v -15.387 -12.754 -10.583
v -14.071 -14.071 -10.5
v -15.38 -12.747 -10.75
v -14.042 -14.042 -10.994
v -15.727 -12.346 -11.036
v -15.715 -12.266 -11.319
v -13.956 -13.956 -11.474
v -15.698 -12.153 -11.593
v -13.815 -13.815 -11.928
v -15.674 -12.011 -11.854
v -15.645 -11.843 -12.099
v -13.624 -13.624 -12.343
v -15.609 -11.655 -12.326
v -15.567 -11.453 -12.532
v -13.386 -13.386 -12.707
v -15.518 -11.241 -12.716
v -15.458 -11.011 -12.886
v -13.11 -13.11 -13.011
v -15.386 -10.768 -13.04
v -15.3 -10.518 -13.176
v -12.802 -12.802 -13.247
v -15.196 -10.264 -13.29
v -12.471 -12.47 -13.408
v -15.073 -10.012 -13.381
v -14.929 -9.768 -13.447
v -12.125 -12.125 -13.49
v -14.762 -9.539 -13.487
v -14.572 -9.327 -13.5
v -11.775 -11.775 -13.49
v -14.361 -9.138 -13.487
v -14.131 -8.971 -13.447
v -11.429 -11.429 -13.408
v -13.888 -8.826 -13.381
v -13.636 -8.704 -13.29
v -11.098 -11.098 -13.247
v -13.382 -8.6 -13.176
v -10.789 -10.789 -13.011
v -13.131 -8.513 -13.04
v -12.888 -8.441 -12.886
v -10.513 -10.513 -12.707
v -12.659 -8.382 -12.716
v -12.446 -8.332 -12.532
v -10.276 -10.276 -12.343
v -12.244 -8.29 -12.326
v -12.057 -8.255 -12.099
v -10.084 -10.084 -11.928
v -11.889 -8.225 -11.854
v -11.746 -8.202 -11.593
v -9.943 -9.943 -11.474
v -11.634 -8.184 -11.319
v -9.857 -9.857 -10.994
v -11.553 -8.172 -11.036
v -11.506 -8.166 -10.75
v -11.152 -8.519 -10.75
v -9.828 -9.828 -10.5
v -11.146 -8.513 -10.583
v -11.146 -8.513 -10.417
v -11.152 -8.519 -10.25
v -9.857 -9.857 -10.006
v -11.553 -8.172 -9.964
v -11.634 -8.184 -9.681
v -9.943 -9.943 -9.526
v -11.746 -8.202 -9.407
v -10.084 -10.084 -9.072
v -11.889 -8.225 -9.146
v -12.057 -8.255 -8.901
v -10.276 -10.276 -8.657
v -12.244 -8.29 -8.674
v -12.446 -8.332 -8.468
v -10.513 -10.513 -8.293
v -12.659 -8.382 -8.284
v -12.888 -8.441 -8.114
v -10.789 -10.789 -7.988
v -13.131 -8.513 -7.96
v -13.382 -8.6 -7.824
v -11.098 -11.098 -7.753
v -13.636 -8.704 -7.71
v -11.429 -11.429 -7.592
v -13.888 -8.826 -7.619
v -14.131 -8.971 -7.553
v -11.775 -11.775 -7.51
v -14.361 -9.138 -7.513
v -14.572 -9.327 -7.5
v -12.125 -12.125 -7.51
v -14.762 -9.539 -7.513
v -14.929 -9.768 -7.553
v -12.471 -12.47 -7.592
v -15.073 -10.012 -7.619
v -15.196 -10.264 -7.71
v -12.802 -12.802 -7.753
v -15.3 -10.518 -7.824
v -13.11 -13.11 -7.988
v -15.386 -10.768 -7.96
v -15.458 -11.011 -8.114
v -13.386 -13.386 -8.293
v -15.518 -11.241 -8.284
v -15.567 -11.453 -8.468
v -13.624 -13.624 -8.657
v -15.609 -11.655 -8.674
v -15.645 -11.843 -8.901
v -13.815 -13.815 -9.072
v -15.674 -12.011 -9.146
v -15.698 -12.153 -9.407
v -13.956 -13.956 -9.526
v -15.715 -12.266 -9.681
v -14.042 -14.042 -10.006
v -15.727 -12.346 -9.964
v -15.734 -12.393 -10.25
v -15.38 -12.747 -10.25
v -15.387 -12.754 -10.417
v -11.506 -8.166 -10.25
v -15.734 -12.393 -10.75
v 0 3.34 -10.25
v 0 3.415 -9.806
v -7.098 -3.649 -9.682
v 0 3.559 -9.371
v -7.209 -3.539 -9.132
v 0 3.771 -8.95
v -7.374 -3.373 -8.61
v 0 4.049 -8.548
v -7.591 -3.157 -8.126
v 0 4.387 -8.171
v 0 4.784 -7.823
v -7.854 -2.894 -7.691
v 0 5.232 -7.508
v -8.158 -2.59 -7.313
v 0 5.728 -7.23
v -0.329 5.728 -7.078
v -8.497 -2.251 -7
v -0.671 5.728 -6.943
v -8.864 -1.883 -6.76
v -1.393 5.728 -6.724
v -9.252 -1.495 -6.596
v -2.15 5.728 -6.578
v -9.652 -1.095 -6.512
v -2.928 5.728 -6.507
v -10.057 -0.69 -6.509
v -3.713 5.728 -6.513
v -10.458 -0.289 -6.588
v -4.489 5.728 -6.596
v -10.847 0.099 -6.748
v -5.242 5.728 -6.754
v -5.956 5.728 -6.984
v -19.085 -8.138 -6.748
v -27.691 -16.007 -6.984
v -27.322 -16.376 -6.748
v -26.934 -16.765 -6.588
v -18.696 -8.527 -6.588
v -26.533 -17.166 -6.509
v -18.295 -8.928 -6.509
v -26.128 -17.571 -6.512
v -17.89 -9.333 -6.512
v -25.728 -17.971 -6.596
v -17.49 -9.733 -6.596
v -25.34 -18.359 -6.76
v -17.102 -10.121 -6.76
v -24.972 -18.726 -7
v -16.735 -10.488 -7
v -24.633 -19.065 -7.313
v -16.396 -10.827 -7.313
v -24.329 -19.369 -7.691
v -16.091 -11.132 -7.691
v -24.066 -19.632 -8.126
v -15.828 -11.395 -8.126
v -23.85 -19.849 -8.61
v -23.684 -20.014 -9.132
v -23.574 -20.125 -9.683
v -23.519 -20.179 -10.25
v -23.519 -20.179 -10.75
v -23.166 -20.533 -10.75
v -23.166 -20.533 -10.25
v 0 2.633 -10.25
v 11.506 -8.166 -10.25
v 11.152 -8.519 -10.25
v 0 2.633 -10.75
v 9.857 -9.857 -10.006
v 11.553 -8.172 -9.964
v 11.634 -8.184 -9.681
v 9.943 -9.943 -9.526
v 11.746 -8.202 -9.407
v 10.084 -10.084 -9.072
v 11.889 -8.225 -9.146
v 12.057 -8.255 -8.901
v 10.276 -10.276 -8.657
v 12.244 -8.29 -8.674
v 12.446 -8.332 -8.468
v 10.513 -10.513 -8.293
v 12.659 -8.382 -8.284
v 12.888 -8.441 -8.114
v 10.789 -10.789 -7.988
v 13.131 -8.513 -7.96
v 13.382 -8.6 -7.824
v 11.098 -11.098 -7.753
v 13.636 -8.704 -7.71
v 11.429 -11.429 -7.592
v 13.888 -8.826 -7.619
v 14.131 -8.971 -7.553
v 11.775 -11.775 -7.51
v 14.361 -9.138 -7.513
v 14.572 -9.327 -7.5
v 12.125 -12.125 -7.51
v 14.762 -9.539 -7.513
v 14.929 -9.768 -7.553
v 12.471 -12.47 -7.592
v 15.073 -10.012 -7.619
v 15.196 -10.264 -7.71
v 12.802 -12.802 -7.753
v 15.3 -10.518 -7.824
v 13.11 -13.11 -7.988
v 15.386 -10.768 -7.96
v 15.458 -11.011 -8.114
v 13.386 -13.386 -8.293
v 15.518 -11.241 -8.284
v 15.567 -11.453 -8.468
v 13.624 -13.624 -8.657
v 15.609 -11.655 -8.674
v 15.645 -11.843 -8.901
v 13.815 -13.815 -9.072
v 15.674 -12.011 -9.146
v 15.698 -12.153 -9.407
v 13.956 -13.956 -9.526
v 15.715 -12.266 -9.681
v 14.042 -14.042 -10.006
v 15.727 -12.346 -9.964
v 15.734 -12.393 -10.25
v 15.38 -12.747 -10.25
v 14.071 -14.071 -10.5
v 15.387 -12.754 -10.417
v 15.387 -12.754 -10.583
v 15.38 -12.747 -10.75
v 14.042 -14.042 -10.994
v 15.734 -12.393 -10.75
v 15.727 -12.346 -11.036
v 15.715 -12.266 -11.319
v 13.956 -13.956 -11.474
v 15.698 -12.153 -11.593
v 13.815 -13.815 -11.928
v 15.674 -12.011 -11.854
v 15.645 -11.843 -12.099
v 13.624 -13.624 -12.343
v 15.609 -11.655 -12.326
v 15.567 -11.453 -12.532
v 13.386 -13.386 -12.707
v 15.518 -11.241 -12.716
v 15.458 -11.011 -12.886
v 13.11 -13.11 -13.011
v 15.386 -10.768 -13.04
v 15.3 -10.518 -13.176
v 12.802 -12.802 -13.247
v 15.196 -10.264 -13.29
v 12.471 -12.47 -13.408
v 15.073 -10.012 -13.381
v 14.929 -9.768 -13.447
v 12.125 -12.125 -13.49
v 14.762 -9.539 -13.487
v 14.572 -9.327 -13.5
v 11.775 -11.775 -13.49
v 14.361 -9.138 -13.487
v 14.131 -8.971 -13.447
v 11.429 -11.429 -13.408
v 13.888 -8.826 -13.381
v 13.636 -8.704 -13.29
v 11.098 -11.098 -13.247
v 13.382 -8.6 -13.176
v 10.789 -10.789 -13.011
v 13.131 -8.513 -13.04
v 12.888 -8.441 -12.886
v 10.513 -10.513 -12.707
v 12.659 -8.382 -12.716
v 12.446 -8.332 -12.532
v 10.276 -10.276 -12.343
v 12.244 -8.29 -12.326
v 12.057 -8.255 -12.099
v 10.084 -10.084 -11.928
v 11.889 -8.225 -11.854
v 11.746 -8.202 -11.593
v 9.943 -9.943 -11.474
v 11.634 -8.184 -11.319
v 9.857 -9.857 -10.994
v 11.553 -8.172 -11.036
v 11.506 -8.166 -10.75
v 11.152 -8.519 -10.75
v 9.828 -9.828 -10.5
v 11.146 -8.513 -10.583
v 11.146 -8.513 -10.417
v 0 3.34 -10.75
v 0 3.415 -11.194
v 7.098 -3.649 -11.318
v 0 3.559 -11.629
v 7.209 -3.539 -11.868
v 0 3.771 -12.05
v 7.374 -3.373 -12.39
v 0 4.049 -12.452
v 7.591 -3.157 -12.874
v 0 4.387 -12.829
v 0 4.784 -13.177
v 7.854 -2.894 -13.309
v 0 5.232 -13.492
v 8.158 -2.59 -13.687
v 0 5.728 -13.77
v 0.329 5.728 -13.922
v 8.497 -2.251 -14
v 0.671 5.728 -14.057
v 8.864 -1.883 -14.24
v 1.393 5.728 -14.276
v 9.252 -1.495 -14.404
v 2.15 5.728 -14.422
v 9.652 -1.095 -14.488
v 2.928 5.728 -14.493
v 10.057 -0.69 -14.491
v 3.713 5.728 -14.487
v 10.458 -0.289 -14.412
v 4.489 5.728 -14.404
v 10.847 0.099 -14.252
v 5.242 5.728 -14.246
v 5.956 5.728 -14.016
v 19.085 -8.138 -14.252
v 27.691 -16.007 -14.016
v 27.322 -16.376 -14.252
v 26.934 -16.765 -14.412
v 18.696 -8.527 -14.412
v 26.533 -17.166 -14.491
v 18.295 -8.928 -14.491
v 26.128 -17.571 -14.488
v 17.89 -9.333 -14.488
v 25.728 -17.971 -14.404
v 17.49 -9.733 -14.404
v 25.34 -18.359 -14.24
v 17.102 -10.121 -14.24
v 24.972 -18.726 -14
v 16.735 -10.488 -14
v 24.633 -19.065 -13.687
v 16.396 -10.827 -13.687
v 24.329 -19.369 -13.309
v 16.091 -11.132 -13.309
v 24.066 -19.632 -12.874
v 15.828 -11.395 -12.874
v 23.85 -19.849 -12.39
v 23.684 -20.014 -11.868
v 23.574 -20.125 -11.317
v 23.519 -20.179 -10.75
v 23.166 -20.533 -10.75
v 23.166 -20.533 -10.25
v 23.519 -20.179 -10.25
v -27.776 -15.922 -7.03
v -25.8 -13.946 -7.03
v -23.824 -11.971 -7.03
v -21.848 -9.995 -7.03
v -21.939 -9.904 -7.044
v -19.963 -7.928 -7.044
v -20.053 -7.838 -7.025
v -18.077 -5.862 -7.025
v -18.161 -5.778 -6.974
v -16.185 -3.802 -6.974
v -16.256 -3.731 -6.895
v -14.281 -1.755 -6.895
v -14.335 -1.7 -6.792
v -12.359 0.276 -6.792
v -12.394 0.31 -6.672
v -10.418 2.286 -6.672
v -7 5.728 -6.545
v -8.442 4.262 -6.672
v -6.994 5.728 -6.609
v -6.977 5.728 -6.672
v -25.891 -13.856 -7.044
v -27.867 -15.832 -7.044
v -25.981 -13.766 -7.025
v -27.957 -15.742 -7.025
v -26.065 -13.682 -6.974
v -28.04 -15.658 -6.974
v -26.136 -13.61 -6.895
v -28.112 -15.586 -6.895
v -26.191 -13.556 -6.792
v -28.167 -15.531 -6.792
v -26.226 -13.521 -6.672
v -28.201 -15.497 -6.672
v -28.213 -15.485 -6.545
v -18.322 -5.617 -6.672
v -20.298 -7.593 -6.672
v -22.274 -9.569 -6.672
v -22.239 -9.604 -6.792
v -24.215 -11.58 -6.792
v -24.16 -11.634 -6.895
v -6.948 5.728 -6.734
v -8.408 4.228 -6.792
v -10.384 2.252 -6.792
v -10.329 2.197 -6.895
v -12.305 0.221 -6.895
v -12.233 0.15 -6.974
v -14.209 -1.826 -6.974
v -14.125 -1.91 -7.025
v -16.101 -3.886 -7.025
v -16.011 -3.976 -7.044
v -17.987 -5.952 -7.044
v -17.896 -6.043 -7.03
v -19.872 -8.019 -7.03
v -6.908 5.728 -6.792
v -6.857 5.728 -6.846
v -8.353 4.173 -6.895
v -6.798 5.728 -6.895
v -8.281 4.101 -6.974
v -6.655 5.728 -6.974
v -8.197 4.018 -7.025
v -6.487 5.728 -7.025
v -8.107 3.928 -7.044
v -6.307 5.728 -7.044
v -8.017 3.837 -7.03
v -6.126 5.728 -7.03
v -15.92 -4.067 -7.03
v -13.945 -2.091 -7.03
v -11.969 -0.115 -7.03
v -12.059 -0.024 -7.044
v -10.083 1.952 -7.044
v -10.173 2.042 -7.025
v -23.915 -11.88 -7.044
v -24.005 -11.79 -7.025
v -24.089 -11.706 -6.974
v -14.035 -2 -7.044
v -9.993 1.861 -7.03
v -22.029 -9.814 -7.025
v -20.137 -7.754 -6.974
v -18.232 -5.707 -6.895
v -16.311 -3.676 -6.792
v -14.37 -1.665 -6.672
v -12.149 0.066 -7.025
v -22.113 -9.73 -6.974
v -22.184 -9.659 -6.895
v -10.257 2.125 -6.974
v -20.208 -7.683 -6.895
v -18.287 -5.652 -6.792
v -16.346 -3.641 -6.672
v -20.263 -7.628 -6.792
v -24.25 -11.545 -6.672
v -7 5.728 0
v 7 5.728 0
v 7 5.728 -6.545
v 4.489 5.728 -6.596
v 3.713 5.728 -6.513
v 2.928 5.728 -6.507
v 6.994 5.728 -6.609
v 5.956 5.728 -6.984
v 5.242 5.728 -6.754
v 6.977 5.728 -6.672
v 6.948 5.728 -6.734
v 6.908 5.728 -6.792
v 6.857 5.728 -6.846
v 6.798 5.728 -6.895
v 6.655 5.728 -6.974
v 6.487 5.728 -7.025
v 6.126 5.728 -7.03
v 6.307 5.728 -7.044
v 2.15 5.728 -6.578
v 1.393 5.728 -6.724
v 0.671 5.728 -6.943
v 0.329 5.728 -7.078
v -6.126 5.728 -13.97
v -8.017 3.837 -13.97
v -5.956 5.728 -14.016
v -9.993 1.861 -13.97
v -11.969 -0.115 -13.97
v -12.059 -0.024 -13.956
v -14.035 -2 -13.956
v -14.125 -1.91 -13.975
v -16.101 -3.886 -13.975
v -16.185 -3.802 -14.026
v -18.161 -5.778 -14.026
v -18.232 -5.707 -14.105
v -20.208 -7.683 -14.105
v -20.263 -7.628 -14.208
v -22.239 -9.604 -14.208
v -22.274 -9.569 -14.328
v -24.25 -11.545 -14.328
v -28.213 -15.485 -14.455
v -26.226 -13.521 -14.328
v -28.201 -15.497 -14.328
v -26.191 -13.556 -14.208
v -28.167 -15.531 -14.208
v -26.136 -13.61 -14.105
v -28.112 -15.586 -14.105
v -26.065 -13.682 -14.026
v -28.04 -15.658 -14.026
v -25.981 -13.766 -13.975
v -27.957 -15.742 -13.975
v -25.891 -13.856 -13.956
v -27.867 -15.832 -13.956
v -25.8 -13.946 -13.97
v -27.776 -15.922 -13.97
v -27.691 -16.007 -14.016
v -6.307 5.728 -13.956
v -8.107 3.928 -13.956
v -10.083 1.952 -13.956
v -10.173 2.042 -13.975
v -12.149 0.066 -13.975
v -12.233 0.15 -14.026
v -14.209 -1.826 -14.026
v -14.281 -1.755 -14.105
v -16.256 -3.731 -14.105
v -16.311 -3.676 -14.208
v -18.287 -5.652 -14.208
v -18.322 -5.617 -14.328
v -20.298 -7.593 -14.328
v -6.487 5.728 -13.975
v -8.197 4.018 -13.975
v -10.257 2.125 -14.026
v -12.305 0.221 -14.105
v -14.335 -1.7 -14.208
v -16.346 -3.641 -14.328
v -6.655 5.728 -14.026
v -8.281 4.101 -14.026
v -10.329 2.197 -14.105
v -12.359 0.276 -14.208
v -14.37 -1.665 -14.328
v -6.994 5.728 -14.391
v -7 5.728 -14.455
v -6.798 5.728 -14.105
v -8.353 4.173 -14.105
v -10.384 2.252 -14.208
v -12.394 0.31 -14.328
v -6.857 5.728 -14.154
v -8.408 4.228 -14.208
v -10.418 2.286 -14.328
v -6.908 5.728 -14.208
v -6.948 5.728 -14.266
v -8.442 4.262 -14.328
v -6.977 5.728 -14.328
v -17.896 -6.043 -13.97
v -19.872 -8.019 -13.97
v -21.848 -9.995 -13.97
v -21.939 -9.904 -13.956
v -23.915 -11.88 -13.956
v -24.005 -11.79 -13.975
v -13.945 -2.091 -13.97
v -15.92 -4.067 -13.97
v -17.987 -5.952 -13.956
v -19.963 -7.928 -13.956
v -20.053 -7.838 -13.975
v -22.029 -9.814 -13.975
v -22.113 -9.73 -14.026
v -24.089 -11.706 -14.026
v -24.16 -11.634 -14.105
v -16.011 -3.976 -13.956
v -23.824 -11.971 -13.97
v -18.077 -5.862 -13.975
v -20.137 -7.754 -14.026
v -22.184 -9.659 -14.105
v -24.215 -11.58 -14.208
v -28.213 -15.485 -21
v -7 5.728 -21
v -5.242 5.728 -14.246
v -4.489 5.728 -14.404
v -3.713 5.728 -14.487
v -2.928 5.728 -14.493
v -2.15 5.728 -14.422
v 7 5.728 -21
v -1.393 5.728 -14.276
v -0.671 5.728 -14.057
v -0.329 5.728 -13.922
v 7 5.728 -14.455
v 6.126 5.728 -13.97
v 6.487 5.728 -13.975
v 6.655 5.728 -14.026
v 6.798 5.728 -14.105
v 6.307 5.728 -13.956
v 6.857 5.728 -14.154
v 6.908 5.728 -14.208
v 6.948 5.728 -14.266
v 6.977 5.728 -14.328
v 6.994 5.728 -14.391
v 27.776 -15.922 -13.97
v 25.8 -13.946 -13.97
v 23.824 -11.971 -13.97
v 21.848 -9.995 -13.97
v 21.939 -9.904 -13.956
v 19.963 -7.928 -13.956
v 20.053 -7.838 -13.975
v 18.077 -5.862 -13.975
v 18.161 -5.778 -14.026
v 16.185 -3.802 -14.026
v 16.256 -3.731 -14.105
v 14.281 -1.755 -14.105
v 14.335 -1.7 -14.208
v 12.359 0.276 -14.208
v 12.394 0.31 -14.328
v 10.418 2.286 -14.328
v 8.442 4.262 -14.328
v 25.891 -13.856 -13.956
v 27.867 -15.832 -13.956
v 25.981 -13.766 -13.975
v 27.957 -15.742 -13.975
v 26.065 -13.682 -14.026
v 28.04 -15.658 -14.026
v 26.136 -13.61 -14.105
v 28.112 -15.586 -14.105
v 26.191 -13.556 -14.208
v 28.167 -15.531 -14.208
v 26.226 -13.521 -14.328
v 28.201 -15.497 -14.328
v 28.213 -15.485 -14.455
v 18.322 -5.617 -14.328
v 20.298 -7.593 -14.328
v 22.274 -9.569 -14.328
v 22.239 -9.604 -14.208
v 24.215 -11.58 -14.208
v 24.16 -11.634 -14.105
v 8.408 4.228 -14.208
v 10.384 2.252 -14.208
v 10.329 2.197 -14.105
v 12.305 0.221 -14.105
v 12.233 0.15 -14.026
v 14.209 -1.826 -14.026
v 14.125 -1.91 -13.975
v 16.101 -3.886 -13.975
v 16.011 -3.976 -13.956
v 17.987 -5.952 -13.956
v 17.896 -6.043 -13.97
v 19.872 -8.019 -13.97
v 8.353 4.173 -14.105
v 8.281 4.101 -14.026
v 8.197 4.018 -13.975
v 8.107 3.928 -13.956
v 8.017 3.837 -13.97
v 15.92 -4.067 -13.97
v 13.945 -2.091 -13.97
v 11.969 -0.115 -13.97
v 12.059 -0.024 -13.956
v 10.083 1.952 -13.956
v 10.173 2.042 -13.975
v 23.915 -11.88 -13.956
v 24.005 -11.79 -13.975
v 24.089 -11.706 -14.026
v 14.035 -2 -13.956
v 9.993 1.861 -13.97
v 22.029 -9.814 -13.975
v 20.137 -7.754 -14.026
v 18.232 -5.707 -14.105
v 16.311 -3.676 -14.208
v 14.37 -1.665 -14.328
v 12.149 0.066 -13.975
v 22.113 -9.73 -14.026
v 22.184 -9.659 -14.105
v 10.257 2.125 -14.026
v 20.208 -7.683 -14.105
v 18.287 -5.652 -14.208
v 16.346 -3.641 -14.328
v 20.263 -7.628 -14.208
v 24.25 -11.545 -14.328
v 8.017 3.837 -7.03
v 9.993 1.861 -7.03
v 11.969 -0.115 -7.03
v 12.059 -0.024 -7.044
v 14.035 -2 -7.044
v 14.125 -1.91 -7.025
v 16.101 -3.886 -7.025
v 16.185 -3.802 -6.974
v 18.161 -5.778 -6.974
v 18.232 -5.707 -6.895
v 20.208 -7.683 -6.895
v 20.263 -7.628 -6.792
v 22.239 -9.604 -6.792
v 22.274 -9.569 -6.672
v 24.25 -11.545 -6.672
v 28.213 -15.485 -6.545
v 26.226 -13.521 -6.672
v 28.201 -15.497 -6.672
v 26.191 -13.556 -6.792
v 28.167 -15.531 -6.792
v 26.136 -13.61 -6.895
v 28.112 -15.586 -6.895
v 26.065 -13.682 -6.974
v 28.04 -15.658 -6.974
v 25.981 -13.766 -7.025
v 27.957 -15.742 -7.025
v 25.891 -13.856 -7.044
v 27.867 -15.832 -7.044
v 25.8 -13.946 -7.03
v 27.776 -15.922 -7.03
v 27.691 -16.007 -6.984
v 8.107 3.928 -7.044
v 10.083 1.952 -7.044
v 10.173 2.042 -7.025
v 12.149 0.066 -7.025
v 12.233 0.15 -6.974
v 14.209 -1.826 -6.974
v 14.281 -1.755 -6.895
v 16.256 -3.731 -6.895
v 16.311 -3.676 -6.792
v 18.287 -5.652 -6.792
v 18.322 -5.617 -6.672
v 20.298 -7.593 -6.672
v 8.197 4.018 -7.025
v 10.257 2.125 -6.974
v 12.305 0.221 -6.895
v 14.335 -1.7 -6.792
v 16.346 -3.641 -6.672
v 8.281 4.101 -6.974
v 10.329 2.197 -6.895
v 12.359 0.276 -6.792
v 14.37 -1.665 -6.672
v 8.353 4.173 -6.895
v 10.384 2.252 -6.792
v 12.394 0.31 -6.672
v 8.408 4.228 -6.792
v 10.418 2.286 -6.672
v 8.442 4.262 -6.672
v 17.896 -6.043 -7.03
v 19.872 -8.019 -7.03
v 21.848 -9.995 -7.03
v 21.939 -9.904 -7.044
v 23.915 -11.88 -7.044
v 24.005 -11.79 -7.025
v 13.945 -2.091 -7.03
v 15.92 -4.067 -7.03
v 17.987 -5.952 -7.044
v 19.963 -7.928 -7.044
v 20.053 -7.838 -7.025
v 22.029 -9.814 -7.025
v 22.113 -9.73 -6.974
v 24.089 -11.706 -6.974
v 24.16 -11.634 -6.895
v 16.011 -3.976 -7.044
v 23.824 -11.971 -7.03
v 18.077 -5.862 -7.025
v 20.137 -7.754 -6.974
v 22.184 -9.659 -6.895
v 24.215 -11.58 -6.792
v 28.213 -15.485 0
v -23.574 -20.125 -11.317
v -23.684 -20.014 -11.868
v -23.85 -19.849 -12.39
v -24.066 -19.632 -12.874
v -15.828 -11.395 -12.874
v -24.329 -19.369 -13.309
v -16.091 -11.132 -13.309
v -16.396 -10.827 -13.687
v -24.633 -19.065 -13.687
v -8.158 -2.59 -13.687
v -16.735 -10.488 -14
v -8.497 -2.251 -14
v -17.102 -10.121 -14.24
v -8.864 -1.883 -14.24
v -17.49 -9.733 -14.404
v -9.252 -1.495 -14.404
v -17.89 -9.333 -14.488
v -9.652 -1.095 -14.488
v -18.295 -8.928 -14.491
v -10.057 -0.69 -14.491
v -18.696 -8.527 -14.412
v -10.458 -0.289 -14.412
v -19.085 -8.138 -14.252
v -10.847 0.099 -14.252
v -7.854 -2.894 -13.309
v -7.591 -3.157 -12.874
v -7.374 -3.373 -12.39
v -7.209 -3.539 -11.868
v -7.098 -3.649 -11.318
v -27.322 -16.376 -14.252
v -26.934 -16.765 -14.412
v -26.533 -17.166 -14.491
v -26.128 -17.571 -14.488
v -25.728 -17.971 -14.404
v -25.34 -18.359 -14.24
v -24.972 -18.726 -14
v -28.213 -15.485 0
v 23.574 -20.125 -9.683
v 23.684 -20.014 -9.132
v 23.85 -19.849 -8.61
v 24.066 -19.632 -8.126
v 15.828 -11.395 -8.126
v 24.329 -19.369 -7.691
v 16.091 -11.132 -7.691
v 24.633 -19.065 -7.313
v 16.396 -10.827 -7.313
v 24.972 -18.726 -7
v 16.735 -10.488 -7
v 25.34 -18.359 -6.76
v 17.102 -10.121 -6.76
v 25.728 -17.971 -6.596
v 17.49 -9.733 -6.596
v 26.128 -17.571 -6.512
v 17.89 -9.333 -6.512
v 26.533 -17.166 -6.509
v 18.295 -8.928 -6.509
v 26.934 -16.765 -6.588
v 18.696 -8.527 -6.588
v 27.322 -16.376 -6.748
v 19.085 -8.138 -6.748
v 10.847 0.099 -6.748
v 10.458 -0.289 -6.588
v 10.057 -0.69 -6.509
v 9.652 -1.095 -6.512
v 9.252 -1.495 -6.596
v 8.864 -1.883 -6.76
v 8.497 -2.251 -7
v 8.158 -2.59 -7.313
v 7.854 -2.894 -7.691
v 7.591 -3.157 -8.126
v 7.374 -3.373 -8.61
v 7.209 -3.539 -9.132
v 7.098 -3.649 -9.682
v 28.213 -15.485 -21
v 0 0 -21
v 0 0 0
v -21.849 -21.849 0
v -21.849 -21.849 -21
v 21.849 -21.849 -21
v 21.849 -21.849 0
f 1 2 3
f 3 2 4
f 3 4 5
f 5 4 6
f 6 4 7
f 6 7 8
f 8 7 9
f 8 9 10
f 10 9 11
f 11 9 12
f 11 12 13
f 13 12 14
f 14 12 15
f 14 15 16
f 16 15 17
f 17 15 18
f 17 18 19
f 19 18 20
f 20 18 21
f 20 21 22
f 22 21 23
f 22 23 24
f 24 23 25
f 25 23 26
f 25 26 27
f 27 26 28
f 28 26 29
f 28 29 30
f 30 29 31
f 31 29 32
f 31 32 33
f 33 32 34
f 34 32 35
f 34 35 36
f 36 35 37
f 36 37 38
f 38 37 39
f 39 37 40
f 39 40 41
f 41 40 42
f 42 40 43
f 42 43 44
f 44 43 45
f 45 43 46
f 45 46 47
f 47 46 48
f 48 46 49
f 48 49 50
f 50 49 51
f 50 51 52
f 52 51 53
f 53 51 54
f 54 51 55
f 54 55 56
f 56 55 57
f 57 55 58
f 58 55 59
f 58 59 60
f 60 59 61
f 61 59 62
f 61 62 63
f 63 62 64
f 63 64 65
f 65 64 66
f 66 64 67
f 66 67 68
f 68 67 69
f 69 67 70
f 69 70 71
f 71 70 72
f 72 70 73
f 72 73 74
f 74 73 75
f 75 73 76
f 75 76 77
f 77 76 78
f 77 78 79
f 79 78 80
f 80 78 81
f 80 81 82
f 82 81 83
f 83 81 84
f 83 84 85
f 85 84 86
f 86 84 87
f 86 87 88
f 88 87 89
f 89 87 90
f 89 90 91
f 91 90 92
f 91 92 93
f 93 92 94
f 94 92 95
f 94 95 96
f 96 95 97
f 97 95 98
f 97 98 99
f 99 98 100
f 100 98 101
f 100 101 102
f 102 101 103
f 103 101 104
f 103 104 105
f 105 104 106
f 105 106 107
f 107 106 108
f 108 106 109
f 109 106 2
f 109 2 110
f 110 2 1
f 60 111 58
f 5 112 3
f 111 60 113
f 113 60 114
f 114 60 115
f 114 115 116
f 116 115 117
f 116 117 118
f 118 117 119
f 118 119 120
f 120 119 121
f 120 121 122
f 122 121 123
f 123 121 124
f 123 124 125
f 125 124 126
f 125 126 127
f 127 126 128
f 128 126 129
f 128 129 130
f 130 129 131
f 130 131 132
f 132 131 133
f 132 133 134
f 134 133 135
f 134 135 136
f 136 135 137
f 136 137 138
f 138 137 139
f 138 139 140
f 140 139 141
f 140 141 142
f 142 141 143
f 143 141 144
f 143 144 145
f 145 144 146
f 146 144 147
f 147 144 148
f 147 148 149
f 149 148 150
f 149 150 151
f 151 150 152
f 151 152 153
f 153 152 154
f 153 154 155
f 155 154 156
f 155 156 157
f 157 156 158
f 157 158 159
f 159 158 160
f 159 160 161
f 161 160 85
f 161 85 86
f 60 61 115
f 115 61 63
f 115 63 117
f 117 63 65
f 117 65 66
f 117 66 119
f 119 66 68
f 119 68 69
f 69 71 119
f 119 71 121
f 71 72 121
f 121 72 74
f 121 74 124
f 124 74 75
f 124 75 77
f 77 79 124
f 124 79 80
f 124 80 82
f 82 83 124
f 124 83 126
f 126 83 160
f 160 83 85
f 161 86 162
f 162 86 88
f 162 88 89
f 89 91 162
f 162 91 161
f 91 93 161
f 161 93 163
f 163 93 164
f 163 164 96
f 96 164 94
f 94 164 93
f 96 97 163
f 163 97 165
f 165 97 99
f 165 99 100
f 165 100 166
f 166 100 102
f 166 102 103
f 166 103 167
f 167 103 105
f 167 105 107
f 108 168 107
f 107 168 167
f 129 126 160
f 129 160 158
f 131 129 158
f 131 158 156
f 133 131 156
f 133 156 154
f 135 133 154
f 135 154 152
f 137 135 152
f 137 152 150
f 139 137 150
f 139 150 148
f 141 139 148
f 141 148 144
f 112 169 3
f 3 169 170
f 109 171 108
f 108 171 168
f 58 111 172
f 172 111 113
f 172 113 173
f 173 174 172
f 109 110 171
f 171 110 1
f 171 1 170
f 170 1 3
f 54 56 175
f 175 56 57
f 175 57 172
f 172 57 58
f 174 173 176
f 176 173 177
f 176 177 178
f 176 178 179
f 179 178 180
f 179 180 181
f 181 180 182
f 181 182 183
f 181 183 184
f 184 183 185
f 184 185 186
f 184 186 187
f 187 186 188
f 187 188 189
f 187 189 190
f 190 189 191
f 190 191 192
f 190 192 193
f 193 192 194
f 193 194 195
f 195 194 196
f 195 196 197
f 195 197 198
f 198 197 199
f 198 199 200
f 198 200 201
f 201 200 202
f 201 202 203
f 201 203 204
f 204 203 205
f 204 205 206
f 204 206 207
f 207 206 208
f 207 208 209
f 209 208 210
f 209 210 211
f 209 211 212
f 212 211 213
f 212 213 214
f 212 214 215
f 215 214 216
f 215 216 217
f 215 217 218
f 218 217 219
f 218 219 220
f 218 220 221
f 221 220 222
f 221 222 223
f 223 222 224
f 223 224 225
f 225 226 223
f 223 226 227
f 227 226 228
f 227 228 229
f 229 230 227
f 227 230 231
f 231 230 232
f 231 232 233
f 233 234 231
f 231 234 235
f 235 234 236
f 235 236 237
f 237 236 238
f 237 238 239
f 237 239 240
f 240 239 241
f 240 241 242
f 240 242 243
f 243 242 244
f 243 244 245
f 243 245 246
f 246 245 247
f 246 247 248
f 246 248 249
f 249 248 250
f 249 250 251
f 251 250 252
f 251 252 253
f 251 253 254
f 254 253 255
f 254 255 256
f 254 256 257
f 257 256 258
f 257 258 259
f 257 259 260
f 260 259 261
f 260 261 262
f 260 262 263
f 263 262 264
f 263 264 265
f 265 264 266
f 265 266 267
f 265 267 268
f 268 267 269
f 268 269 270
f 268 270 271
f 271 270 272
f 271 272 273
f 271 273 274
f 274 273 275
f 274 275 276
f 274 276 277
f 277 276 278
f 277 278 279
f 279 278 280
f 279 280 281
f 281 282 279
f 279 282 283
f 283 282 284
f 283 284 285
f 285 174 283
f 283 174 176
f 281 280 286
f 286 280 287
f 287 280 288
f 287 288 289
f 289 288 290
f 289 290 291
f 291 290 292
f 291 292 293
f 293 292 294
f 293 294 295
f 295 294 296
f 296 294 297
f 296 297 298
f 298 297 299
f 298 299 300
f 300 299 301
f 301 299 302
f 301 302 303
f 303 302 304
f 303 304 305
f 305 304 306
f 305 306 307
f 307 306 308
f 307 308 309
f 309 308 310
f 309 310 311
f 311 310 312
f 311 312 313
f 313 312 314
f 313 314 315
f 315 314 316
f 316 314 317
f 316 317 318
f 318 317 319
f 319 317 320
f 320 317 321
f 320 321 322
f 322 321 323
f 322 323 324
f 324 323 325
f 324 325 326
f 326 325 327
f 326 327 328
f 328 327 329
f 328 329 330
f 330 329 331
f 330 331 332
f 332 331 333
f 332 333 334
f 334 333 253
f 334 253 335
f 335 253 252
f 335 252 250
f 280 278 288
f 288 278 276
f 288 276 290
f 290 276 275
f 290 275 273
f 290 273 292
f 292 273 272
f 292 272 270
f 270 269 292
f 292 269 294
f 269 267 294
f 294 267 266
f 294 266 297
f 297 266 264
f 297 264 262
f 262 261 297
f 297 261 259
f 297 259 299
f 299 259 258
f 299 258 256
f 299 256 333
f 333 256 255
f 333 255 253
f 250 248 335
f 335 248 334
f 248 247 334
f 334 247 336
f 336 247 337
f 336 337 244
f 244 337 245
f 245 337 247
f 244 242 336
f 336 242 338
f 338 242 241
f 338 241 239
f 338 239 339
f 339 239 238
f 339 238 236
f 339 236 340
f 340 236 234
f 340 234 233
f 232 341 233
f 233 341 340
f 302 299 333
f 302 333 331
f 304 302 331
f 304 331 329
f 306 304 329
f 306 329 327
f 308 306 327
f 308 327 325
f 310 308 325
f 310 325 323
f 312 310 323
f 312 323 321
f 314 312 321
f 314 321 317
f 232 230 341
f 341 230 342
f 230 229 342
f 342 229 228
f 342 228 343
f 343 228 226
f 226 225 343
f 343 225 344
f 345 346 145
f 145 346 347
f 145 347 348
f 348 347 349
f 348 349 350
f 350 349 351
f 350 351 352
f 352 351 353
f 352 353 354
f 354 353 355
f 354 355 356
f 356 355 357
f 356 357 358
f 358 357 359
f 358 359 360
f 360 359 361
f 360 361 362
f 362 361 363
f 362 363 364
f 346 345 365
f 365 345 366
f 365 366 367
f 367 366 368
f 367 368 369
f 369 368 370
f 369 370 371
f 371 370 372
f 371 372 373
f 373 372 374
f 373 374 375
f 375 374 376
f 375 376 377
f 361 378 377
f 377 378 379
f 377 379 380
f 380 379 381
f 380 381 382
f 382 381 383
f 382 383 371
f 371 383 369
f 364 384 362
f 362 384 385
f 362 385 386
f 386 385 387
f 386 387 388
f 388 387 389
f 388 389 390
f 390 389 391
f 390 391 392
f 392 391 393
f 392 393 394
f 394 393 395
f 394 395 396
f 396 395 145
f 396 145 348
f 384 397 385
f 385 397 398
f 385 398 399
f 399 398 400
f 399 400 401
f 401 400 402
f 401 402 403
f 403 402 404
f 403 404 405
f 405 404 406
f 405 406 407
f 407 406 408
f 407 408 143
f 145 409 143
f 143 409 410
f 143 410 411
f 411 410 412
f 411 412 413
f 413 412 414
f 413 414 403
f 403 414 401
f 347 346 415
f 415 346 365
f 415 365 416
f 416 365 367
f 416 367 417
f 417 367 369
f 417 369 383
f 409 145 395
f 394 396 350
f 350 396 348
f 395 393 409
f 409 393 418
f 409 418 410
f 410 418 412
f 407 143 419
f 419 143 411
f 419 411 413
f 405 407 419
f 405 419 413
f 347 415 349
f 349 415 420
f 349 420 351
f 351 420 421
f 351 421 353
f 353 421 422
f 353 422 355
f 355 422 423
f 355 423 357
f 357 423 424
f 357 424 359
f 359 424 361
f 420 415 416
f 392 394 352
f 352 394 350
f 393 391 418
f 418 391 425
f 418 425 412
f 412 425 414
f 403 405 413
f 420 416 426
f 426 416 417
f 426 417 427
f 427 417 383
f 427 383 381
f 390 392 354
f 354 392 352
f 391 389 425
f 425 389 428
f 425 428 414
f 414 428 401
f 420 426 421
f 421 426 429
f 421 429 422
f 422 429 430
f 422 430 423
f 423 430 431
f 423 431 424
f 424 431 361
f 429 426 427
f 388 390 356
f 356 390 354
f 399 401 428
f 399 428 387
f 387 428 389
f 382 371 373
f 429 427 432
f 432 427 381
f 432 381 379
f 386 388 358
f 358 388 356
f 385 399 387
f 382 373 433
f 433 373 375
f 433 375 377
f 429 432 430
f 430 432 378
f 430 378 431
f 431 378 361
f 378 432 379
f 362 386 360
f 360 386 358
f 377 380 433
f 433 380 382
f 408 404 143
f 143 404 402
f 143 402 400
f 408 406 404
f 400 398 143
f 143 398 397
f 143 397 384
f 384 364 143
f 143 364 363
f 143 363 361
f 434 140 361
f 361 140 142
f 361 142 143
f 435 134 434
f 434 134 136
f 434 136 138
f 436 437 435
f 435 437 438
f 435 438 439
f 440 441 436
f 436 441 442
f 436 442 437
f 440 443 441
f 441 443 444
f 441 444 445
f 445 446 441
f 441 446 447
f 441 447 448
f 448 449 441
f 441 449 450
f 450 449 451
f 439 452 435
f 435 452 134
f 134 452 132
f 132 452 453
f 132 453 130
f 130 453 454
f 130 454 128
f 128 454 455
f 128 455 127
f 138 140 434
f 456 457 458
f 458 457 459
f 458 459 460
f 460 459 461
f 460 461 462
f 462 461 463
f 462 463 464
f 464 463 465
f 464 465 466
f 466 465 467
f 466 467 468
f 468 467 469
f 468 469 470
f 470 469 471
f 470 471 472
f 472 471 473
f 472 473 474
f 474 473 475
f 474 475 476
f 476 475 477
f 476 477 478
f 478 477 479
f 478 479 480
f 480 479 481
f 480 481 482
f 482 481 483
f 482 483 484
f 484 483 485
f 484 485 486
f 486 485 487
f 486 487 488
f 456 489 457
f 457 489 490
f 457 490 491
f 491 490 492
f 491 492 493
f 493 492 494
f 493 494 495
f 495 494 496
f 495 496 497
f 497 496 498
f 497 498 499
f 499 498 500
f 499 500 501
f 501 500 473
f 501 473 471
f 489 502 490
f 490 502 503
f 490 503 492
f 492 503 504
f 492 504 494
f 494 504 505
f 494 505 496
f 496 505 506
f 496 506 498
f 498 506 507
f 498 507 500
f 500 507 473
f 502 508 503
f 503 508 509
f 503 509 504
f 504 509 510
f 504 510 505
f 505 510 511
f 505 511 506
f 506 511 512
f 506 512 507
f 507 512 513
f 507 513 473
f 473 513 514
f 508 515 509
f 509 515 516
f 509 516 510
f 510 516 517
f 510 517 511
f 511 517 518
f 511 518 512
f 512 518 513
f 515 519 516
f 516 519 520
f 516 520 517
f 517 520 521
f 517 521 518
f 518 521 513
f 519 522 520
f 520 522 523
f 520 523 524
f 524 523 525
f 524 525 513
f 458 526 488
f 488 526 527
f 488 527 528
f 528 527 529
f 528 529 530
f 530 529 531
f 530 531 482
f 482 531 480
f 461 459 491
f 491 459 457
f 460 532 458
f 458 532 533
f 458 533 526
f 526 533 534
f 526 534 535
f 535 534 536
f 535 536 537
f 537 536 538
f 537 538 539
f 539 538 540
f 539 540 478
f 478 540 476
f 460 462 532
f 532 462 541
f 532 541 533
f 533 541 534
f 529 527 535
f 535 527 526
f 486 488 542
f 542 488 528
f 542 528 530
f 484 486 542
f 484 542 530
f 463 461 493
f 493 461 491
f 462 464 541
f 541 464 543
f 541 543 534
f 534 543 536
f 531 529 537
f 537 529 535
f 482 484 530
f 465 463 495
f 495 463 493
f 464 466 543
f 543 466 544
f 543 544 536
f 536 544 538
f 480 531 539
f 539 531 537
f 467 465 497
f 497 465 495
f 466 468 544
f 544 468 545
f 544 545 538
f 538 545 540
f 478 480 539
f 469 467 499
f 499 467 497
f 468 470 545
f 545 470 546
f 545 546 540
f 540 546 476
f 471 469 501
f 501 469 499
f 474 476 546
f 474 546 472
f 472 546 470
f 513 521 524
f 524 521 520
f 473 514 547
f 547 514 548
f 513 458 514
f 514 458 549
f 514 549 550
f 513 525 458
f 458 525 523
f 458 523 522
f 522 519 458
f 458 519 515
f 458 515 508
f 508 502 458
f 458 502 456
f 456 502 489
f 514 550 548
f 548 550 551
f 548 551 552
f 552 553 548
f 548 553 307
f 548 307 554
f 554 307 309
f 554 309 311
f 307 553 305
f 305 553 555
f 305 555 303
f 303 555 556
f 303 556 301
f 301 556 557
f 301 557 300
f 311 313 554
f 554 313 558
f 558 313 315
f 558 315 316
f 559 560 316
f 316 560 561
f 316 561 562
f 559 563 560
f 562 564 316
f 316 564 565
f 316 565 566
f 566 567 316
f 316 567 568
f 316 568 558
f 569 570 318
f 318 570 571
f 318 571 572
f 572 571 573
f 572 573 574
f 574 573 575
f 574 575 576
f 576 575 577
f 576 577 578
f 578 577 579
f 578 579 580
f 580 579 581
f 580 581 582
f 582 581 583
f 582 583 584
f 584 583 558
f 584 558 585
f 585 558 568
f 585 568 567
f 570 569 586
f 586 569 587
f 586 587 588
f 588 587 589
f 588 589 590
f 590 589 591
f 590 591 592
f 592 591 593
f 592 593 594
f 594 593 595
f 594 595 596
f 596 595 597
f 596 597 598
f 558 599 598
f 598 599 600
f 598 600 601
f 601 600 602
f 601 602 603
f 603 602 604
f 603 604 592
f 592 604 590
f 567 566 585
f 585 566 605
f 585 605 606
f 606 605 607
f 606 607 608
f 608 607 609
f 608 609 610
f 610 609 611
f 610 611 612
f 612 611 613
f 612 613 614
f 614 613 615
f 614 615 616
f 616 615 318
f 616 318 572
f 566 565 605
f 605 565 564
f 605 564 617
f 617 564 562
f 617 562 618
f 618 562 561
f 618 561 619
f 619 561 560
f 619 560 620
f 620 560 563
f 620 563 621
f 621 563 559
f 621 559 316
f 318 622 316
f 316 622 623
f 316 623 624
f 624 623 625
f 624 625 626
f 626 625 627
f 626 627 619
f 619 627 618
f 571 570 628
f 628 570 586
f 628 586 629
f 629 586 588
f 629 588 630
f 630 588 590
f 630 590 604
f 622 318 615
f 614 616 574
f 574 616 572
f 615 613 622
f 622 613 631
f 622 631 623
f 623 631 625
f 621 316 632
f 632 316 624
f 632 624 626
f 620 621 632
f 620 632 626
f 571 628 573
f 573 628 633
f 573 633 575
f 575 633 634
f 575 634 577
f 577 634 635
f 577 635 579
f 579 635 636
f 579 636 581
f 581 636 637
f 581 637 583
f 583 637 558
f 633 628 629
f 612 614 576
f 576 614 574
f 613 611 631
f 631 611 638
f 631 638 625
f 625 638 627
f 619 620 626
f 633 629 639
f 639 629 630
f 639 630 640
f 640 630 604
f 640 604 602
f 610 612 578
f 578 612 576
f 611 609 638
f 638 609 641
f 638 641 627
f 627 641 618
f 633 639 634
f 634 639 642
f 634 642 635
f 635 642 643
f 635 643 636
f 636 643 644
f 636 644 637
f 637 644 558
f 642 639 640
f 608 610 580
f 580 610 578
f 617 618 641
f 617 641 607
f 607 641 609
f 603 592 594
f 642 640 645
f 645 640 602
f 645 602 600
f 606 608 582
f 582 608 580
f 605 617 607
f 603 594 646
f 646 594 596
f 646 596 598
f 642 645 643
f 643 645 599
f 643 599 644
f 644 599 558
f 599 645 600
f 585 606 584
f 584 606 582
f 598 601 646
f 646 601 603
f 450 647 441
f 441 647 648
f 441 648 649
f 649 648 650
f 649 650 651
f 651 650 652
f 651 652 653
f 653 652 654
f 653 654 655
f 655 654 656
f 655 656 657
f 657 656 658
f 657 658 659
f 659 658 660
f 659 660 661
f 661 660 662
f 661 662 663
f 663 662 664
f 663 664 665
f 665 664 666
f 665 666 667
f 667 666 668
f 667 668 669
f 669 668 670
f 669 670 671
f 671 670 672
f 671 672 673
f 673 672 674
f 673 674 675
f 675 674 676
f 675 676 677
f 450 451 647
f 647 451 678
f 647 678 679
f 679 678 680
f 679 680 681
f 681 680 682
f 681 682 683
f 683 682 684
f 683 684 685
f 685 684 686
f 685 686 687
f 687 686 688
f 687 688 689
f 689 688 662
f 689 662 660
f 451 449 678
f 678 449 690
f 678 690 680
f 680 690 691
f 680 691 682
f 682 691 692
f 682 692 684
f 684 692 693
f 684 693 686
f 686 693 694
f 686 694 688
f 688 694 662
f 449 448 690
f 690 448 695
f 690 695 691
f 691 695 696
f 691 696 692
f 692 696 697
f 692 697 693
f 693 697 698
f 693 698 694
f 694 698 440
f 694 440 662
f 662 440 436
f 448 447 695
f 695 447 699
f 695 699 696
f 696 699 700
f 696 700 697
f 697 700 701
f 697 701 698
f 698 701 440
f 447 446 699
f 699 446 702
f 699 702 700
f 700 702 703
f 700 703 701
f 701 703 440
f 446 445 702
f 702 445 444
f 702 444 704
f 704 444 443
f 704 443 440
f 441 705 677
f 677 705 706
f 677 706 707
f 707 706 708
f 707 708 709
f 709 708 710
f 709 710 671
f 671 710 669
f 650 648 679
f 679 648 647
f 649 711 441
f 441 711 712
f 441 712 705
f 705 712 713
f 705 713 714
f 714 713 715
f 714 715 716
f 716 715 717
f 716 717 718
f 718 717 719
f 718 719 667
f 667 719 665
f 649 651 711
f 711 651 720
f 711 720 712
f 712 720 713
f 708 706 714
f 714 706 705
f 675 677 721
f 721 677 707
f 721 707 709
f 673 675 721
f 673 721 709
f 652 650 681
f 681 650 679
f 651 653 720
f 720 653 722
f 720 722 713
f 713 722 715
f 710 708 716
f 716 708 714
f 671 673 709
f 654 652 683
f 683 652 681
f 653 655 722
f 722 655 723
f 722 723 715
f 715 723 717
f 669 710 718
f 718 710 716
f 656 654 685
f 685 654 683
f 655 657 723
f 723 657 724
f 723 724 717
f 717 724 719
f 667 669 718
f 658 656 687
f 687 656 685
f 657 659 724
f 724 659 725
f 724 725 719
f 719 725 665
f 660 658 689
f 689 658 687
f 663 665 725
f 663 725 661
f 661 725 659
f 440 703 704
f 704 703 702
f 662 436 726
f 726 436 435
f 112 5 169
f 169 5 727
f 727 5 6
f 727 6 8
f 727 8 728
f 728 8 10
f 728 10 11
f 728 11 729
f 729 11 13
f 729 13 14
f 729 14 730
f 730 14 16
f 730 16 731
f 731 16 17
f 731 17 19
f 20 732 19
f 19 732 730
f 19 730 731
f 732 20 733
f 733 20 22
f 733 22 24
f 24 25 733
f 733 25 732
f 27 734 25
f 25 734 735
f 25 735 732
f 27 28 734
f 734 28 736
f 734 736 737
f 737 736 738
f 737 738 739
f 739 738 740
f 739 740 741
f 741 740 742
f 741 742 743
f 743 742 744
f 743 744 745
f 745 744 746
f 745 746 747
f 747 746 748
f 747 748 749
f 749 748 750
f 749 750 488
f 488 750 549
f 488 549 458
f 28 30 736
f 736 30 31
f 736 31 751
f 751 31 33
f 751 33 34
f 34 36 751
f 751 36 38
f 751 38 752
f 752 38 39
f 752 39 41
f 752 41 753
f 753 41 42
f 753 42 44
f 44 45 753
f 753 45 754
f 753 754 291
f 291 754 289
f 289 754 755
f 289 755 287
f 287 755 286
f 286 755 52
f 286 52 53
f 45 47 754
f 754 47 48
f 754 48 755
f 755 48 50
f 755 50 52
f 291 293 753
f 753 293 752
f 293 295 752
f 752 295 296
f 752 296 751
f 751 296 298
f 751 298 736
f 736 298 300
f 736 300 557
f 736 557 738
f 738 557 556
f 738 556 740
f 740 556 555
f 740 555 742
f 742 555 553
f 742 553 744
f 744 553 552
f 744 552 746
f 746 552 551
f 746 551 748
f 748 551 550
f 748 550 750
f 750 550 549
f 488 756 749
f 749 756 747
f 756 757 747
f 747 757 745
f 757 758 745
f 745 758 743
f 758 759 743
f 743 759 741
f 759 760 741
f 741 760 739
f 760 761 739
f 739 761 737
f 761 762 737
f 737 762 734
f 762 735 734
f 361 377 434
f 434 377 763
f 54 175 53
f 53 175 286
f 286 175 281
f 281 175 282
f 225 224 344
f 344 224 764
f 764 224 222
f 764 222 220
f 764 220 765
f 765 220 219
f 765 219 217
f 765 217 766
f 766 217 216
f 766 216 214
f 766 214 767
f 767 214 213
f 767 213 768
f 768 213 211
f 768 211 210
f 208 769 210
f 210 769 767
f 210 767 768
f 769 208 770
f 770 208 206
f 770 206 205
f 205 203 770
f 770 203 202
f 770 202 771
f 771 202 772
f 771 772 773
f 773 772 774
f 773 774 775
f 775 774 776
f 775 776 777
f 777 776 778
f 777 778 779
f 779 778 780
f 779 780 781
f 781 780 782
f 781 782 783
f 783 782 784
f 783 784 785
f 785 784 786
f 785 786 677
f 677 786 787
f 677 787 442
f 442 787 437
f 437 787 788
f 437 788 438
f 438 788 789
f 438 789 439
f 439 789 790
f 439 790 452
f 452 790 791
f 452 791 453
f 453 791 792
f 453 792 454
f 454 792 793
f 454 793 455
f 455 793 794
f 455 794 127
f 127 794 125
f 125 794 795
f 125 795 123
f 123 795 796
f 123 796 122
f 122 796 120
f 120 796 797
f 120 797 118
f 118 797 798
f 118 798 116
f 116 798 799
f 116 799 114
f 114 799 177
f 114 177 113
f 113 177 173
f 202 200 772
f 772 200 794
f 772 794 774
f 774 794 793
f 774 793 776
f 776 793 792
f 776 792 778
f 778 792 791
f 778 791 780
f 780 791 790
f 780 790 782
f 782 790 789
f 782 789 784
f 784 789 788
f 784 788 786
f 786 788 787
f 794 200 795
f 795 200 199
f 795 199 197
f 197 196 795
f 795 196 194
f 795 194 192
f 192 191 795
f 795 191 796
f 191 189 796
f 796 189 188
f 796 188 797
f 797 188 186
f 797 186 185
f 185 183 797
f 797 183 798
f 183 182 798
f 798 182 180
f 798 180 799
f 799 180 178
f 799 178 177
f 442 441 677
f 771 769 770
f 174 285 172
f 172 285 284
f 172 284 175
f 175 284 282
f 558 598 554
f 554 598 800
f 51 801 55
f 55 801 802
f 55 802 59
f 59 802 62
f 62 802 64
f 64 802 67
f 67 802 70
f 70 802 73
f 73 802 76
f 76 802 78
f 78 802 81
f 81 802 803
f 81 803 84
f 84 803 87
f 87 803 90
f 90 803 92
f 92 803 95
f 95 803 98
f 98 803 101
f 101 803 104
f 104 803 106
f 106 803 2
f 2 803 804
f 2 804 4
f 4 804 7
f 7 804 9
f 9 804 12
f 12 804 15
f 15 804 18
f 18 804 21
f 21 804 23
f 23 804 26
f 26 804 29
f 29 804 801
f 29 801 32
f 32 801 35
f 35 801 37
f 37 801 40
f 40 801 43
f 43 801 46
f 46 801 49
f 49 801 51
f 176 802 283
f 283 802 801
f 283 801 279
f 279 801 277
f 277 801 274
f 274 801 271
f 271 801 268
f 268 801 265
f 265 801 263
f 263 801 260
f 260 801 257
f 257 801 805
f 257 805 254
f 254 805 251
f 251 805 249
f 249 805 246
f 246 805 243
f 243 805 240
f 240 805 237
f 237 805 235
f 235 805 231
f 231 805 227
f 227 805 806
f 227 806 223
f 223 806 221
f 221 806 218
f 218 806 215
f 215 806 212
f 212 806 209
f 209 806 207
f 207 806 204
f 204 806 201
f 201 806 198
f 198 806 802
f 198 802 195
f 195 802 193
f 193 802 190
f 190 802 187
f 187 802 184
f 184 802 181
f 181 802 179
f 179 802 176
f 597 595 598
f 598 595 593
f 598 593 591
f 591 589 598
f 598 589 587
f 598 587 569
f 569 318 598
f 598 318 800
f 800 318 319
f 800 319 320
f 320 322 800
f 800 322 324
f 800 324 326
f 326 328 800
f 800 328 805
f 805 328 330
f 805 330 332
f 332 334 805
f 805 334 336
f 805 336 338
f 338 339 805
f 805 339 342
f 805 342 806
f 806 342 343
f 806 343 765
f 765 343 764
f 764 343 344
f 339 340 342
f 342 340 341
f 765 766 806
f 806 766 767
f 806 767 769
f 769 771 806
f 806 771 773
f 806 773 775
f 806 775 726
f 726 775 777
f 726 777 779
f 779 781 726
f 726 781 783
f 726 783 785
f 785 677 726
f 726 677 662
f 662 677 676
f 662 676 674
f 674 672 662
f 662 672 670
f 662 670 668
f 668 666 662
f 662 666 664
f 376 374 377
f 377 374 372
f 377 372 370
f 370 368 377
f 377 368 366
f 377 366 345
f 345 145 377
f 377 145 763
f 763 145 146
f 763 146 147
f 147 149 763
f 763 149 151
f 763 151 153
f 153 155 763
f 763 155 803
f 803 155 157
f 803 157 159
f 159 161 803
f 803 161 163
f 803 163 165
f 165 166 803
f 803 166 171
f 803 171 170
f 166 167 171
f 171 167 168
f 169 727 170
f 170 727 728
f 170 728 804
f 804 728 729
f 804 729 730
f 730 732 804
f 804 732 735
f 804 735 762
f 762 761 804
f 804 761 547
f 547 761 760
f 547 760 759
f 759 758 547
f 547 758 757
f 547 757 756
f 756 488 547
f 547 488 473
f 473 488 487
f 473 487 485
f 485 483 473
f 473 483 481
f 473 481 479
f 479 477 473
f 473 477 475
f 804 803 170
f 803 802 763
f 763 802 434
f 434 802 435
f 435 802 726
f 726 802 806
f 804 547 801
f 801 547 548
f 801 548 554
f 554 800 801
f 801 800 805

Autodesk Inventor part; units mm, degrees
sketch "Sketch1" plane through (0, 0, 0) normal (0, 0, 1) x (1, 0, 0)
  line L0 (-7, 5.7279) -> (7, 5.7279)
  line L1 (-7, 5.7279) -> (-28.2132, -15.4853)
  line L2 (-28.2132, -15.4853) -> (-21.8492, -21.8492)
  line L3 (0, 0) -> (-21.8492, -21.8492)
  line L4 (7, 5.7279) -> (28.2132, -15.4853)
  line L5 (28.2132, -15.4853) -> (21.8492, -21.8492)
  line L6 (0, 0) -> (21.8492, -21.8492)
  line L7 (0, 15.5718) -> (0, -18.5373) construction
  dimension "d112" = 30
  dimension "d204" = 7
  dimension "d205" = 7
  dimension "d207" = 30
  dimension "d208" = 45
  dimension "d209" = 45
  dimension "d210" = 9
  dimension "d211" = 9
extrude "Extrusion1" add sketch "Sketch1" against normal blind 21
ref_plane "Plano de trabajo1" through (0, 0, 0) normal (1, 0, 0) x (0, 0, -1)
ref_plane "Plano de trabajo2" through (28.2132, -15.4853, -21) normal (0.7071, 0.7071, 0) x (-0.7071, 0.7071, 0)
sketch "Boceto2" plane through (28.2132, -15.4853, 0) normal (0.7071, -0.7071, 0) x (-0.7071, -0.7071, 0)
  line L0 (-3.8291, 10.5) -> (9.1738, 10.5) construction
  line L1 (0, 7.5) -> (0, 13.5)
  arc A0 (0, 7.5) -> (6.6379, 10.25) centre (2.6458, 10.5) ccw
  arc A1 (6.6379, 10.75) -> (0, 13.5) centre (2.6458, 10.5) ccw
  line L2 (0, 21) -> (9, 21) projected
  line L3 (9, 0) -> (0, 0) projected
  line L4 (7.1379, 10.75) -> (7.1379, 10.25)
  line L5 (7.1379, 10.25) -> (6.6379, 10.25)
  line L6 (7.1379, 10.75) -> (6.6379, 10.75)
  point P0 (0.9314, 0)
  dimension "d163" = 6
  dimension "d164" = 3
  dimension "d167" = 4
  dimension "d171" = 10.5
  dimension "d172" = 10.5
  dimension "d179" = 0.25
  dimension "d180" = 0.5
  dimension "d181" = 0.5
extrude "Extrusión2" cut sketch "Boceto2" against normal up to surface surface through (0, 0, 0) normal (1, 0, 0)
mirror "Simetría1" about plane through (0, 0, 0) normal (1, 0, 0) of "Extrusión2"
fillet "Empalme1" radius 0.5 4 edges at (17.6066, -4.8787, -7.5) (17.6066, -4.8787, -13.5) (-17.6066, -4.8787, -13.5) (-17.6066, -4.8787, -7.5)
sketch "Boceto3" plane through (28.2132, -15.4853, -21) normal (0.7071, 0.7071, 0) x (-0.7071, 0.7071, 0)
  arc A0 (30, 14.4555) -> (30.7384, 14.016) centre (30.5, 14.4555) ccw projected
  line L0 (30, 14.4555) -> (0, 14.4555) projected
  line L1 (0, 14.4555) -> (0, 14.016) projected
  line L2 (0, 14.016) -> (30.7384, 14.016) projected
  line L3 (0, 14.016) -> (30.7384, 14.016) projected
  line L4 (0, 10.75) -> (0, 14.016) projected
  arc A1 (34.9497, 13.7698) -> (30.7384, 14.016) centre (32.6458, 10.5) ccw projected
  line L5 (0, 10.75) -> (33.2616, 10.75) projected
  line L6 (0, 10.75) -> (32.7616, 10.75) projected
  line L7 (0, 10.75) -> (32.7616, 10.75) projected
  line L8 (0, 10.25) -> (0, 10.75) projected
  line L9 (0, 10.25) -> (32.7616, 10.25) projected
  line L10 (0, 10.25) -> (32.7616, 10.25) projected
  line L11 (0, 10.25) -> (33.2616, 10.25) projected
  line L12 (30.7384, 6.984) -> (0, 6.984) projected
  arc A2 (30.7384, 6.984) -> (34.9497, 7.2302) centre (32.6458, 10.5) ccw projected
  line L13 (0, 6.984) -> (0, 10.25) projected
  line L14 (0, 6.984) -> (0, 6.5445) projected
  line L15 (0, 6.5445) -> (30, 6.5445) projected
  arc A3 (30.7384, 6.984) -> (30, 6.5445) centre (30.5, 6.5445) ccw projected
  line L16 (30.7384, 6.984) -> (0, 6.984) projected
  line L17 (0, 6.5445) -> (30, 6.5445) projected
  line L18 (0, 6.5445) -> (0, 0) projected
  line L19 (30, 0) -> (0, 0) projected
  line L20 (30, 6.5445) -> (30, 0) projected
  line L21 (30, 14.4555) -> (0, 14.4555) projected
  line L22 (30, 21) -> (30, 14.4555) projected
  line L23 (0, 21) -> (30, 21) projected
  line L24 (0, 21) -> (0, 14.4555) projected
  circle A4 centre (14, 10.5) radius 3
  line L25 (32.7616, 10.25) -> (33.2616, 10.25) projected
  line L26 (32.7616, 10.25) -> (32.7616, 10.75) projected
  line L27 (33.2616, 10.75) -> (32.7616, 10.75) projected
  arc A5 (33.2616, 10.25) -> (34.9497, 7.2302) centre (37.2537, 10.5) ccw projected
  line L28 (0, 10.25) -> (33.2616, 10.25) projected
  line L29 (0, 10.75) -> (33.2616, 10.75) projected
  arc A6 (34.9497, 13.7698) -> (33.2616, 10.75) centre (37.2537, 10.5) ccw projected
  point P0 (30.8995, 21)
  dimension "d183" = 6
  dimension "d184" = 10.5
  dimension "d185" = 10.5
  dimension "d186" = 14
hole "Agujero1" at (18.3137, -5.5858, -10.5) direction (-0.7071, -0.7071, 0) diameter 6 depth 9
mirror "Simetría2" about plane through (0, 0, 0) normal (1, 0, 0) of "Agujero1"
thread "Rosca1" size "M6x1" class "6H" standard "ANSI Metric M Profile" full length
thread "Rosca2" size "M6x1" class "6H" standard "ANSI Metric M Profile" full length
ref_plane "Plano de trabajo3" through (0, 0, -10.5) normal (0, 0, 1) x (1, 0, 0)
properties part number "ESCUADRA UNIÓN 45 DISEÑO NUEVO V2" material "Aluminio"
